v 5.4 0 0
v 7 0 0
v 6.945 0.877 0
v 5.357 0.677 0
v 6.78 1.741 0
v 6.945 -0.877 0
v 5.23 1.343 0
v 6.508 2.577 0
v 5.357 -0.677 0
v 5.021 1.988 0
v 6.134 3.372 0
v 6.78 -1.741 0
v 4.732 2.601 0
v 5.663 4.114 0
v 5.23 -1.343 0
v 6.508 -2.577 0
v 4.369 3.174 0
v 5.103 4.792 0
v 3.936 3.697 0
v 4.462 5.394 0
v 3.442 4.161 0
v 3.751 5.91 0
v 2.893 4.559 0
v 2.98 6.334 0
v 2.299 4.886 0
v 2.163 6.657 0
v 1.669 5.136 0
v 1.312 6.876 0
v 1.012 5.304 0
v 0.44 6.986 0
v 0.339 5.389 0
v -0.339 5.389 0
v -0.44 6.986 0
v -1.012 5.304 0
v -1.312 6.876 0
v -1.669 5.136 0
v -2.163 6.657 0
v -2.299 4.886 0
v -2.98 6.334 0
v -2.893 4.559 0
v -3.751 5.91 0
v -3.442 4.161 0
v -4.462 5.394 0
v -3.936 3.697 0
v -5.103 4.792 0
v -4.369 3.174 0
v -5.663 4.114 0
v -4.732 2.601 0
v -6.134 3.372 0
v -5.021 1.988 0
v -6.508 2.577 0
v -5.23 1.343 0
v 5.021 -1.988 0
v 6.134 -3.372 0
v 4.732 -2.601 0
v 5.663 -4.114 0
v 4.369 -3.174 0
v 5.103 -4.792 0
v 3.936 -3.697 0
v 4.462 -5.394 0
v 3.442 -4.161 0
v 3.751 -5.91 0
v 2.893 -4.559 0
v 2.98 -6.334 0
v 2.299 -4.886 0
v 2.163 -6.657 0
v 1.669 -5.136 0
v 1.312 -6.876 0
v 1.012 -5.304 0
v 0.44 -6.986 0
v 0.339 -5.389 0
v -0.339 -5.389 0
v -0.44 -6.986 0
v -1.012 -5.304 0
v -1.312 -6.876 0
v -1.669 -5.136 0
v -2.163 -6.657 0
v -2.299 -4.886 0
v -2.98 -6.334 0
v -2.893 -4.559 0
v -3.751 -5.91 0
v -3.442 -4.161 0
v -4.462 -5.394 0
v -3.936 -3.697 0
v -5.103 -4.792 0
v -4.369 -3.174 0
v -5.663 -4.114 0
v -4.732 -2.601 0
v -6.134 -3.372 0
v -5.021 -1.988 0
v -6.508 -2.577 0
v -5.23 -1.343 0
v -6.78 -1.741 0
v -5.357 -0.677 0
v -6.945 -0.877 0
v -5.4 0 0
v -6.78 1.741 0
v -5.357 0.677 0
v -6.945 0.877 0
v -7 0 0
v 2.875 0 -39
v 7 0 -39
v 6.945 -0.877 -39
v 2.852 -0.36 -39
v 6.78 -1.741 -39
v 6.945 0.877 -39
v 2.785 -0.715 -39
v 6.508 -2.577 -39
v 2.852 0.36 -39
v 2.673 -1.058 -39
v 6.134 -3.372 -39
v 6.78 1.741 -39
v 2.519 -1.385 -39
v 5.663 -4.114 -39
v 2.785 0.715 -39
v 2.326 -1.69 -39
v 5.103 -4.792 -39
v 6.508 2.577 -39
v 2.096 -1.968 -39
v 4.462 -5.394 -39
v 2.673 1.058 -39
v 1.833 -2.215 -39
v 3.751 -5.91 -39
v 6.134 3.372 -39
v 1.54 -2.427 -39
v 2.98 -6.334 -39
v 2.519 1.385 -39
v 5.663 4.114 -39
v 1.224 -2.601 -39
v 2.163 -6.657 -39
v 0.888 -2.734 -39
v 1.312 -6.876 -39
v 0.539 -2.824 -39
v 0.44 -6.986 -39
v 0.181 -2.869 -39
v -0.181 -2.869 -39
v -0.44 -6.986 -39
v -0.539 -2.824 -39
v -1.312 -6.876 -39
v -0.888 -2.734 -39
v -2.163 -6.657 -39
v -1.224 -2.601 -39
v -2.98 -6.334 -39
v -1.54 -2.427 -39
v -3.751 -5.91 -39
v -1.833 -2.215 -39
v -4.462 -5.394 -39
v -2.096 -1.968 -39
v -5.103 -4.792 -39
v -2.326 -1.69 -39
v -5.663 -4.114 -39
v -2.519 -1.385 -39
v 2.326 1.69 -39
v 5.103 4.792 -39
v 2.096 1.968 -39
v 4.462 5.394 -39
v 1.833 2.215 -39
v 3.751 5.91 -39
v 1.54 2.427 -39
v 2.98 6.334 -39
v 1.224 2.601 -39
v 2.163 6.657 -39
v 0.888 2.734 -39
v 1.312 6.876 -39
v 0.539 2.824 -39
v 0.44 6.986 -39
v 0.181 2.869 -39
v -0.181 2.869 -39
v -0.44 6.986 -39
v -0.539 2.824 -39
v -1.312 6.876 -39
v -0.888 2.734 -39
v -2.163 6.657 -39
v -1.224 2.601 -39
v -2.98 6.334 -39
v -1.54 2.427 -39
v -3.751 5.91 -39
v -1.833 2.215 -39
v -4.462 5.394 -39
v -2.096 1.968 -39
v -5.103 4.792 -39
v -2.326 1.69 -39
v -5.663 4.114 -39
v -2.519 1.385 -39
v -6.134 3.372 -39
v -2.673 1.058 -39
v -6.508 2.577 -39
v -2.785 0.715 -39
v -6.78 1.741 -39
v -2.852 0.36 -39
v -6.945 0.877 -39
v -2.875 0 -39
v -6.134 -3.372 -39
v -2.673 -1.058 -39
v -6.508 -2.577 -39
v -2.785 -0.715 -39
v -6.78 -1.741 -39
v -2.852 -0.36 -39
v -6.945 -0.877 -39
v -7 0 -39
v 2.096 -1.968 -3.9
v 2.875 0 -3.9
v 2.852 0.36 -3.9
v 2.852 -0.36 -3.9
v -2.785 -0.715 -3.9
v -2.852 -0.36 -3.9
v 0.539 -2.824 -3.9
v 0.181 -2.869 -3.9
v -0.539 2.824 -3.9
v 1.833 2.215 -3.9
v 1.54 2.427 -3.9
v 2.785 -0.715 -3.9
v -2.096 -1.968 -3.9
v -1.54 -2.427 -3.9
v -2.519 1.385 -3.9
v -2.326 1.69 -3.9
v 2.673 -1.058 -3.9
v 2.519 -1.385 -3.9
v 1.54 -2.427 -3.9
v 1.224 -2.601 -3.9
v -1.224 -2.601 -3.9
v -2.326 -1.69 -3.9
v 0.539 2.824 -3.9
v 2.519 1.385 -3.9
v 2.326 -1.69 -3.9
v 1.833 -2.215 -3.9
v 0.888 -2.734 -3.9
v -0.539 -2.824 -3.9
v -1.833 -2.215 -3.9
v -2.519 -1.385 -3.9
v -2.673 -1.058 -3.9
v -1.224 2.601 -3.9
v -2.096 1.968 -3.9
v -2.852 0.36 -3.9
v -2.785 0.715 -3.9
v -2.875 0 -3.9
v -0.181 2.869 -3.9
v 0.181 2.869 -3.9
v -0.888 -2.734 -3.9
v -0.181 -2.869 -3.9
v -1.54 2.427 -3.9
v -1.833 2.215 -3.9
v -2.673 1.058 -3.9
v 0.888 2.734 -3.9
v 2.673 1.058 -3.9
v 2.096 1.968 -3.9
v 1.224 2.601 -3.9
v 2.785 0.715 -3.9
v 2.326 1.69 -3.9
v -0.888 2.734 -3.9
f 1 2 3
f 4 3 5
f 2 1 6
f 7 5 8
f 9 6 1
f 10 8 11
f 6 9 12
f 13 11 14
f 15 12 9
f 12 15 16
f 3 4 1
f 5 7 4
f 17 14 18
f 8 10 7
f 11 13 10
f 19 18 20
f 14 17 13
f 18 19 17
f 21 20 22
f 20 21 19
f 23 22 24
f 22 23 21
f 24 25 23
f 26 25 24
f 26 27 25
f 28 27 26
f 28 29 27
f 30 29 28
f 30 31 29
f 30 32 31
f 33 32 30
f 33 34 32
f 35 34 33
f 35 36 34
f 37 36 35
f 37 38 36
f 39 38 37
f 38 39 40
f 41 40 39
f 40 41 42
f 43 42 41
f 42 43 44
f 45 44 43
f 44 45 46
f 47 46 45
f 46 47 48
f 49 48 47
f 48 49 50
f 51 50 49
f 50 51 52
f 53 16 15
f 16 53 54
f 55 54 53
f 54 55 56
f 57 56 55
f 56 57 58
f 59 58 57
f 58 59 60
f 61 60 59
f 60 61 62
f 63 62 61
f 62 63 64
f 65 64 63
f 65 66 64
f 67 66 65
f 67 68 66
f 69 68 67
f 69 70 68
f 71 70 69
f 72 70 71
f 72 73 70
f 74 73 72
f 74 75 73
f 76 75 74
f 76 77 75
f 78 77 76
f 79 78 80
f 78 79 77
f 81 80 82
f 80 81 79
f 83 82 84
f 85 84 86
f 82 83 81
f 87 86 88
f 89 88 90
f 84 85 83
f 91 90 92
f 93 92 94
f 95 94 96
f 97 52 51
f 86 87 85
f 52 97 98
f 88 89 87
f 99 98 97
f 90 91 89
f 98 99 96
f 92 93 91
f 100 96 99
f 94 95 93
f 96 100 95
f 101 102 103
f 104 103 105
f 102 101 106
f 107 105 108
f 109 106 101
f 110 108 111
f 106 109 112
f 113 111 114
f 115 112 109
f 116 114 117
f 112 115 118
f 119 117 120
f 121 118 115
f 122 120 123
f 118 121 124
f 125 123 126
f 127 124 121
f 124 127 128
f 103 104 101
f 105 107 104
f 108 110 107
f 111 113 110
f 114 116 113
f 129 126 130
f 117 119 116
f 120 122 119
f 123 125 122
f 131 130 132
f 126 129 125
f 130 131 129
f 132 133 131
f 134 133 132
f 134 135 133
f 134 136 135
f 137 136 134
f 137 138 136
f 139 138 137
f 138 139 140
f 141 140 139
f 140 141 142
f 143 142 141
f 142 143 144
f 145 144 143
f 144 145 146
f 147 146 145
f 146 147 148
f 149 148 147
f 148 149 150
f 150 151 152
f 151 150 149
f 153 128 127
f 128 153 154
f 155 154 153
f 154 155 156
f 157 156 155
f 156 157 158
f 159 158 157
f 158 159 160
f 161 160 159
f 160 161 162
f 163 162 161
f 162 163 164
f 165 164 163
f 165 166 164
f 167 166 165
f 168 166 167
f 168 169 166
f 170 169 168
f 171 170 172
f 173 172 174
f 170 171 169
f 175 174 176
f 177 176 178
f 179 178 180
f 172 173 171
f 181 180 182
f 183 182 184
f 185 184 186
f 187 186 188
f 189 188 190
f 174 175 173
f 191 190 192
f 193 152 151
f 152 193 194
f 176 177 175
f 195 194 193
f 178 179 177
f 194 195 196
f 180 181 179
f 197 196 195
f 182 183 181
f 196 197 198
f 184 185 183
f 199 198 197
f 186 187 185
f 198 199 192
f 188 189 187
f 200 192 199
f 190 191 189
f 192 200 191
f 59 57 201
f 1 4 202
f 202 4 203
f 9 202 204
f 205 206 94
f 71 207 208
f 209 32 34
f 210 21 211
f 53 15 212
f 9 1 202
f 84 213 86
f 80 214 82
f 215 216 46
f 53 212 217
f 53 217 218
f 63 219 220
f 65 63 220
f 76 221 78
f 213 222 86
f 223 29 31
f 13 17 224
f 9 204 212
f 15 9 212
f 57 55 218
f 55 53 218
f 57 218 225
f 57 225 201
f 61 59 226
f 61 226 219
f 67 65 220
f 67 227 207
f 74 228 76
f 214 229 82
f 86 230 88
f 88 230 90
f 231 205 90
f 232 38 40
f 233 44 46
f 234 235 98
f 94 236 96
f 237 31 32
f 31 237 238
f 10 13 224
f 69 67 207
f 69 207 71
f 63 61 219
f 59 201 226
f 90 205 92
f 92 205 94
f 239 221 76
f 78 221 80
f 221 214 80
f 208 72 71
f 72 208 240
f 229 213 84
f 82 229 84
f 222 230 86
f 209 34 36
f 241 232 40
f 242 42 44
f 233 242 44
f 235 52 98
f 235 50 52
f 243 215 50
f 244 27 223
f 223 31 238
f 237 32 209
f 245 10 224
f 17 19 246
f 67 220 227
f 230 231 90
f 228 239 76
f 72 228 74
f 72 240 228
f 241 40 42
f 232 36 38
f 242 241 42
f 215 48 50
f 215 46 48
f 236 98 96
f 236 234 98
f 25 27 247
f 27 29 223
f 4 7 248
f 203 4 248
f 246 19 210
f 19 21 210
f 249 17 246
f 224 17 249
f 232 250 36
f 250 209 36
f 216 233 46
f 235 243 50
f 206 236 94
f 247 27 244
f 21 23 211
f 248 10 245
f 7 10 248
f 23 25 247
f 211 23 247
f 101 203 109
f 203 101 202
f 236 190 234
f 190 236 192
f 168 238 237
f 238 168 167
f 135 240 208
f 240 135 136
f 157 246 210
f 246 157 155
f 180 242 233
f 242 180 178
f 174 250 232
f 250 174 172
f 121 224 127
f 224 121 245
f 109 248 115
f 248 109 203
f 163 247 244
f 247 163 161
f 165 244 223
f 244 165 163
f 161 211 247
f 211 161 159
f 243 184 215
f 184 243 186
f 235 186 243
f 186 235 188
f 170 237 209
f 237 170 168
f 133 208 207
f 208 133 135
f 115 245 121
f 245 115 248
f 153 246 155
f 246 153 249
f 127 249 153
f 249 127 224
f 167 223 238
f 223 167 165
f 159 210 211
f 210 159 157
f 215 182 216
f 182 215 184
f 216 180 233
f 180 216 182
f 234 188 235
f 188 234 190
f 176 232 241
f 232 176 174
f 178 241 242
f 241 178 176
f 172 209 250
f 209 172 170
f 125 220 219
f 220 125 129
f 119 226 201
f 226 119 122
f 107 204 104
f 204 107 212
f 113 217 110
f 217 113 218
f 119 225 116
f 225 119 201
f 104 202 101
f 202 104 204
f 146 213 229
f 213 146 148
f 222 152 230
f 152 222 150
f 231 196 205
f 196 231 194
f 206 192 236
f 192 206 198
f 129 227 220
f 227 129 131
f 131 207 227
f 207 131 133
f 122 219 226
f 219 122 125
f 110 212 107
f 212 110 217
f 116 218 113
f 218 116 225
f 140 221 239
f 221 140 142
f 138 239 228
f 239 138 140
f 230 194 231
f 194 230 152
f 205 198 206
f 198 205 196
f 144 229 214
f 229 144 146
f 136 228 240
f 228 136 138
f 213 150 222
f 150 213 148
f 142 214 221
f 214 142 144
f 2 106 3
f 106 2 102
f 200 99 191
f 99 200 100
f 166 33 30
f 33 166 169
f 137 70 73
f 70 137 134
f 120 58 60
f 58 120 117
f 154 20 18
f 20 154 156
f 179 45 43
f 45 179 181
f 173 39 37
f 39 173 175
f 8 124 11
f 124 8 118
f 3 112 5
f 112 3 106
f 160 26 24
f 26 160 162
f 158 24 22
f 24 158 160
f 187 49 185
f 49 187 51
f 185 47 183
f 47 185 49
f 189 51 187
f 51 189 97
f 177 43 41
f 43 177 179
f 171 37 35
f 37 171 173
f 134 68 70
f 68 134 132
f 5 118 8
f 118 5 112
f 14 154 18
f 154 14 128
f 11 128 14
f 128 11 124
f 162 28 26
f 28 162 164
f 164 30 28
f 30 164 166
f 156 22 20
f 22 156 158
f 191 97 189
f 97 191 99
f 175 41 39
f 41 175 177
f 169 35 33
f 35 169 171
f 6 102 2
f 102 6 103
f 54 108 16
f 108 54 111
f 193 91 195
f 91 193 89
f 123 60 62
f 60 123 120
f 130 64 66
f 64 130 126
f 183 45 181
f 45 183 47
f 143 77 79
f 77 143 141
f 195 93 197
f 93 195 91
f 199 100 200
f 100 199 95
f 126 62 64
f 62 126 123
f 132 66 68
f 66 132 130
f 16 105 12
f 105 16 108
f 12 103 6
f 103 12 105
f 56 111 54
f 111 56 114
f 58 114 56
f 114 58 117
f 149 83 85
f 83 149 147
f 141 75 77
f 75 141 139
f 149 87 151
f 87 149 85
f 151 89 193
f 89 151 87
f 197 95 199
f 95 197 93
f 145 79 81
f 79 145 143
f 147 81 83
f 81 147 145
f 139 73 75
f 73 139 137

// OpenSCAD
$fn = 50;


difference() {
	union() {
		translate(v = [0, 0, -39.0000000000]) {
			cylinder(h = 39, r = 7.0000000000);
		}
		cylinder(h = 0, r = 10.0000000000);
	}
	union() {
		translate(v = [0, 0, 0]) {
			rotate(a = [0, 0, 0]) {
				difference() {
					union() {
						#translate(v = [0, 0, -39.0000000000]) {
							cylinder(h = 39, r = 2.6000000000);
						}
						#translate(v = [0, 0, -3.9000000000]) {
							cylinder(h = 3.9000000000, r = 7.0000000000, r1 = 2.8750000000, r2 = 5.4000000000);
						}
						#translate(v = [0, 0, -39.0000000000]) {
							cylinder(h = 39, r = 2.8750000000);
						}
						#translate(v = [0, 0, -39.0000000000]) {
							cylinder(h = 39, r = 2.6000000000);
						}
					}
					union();
				}
			}
		}
	}
}
